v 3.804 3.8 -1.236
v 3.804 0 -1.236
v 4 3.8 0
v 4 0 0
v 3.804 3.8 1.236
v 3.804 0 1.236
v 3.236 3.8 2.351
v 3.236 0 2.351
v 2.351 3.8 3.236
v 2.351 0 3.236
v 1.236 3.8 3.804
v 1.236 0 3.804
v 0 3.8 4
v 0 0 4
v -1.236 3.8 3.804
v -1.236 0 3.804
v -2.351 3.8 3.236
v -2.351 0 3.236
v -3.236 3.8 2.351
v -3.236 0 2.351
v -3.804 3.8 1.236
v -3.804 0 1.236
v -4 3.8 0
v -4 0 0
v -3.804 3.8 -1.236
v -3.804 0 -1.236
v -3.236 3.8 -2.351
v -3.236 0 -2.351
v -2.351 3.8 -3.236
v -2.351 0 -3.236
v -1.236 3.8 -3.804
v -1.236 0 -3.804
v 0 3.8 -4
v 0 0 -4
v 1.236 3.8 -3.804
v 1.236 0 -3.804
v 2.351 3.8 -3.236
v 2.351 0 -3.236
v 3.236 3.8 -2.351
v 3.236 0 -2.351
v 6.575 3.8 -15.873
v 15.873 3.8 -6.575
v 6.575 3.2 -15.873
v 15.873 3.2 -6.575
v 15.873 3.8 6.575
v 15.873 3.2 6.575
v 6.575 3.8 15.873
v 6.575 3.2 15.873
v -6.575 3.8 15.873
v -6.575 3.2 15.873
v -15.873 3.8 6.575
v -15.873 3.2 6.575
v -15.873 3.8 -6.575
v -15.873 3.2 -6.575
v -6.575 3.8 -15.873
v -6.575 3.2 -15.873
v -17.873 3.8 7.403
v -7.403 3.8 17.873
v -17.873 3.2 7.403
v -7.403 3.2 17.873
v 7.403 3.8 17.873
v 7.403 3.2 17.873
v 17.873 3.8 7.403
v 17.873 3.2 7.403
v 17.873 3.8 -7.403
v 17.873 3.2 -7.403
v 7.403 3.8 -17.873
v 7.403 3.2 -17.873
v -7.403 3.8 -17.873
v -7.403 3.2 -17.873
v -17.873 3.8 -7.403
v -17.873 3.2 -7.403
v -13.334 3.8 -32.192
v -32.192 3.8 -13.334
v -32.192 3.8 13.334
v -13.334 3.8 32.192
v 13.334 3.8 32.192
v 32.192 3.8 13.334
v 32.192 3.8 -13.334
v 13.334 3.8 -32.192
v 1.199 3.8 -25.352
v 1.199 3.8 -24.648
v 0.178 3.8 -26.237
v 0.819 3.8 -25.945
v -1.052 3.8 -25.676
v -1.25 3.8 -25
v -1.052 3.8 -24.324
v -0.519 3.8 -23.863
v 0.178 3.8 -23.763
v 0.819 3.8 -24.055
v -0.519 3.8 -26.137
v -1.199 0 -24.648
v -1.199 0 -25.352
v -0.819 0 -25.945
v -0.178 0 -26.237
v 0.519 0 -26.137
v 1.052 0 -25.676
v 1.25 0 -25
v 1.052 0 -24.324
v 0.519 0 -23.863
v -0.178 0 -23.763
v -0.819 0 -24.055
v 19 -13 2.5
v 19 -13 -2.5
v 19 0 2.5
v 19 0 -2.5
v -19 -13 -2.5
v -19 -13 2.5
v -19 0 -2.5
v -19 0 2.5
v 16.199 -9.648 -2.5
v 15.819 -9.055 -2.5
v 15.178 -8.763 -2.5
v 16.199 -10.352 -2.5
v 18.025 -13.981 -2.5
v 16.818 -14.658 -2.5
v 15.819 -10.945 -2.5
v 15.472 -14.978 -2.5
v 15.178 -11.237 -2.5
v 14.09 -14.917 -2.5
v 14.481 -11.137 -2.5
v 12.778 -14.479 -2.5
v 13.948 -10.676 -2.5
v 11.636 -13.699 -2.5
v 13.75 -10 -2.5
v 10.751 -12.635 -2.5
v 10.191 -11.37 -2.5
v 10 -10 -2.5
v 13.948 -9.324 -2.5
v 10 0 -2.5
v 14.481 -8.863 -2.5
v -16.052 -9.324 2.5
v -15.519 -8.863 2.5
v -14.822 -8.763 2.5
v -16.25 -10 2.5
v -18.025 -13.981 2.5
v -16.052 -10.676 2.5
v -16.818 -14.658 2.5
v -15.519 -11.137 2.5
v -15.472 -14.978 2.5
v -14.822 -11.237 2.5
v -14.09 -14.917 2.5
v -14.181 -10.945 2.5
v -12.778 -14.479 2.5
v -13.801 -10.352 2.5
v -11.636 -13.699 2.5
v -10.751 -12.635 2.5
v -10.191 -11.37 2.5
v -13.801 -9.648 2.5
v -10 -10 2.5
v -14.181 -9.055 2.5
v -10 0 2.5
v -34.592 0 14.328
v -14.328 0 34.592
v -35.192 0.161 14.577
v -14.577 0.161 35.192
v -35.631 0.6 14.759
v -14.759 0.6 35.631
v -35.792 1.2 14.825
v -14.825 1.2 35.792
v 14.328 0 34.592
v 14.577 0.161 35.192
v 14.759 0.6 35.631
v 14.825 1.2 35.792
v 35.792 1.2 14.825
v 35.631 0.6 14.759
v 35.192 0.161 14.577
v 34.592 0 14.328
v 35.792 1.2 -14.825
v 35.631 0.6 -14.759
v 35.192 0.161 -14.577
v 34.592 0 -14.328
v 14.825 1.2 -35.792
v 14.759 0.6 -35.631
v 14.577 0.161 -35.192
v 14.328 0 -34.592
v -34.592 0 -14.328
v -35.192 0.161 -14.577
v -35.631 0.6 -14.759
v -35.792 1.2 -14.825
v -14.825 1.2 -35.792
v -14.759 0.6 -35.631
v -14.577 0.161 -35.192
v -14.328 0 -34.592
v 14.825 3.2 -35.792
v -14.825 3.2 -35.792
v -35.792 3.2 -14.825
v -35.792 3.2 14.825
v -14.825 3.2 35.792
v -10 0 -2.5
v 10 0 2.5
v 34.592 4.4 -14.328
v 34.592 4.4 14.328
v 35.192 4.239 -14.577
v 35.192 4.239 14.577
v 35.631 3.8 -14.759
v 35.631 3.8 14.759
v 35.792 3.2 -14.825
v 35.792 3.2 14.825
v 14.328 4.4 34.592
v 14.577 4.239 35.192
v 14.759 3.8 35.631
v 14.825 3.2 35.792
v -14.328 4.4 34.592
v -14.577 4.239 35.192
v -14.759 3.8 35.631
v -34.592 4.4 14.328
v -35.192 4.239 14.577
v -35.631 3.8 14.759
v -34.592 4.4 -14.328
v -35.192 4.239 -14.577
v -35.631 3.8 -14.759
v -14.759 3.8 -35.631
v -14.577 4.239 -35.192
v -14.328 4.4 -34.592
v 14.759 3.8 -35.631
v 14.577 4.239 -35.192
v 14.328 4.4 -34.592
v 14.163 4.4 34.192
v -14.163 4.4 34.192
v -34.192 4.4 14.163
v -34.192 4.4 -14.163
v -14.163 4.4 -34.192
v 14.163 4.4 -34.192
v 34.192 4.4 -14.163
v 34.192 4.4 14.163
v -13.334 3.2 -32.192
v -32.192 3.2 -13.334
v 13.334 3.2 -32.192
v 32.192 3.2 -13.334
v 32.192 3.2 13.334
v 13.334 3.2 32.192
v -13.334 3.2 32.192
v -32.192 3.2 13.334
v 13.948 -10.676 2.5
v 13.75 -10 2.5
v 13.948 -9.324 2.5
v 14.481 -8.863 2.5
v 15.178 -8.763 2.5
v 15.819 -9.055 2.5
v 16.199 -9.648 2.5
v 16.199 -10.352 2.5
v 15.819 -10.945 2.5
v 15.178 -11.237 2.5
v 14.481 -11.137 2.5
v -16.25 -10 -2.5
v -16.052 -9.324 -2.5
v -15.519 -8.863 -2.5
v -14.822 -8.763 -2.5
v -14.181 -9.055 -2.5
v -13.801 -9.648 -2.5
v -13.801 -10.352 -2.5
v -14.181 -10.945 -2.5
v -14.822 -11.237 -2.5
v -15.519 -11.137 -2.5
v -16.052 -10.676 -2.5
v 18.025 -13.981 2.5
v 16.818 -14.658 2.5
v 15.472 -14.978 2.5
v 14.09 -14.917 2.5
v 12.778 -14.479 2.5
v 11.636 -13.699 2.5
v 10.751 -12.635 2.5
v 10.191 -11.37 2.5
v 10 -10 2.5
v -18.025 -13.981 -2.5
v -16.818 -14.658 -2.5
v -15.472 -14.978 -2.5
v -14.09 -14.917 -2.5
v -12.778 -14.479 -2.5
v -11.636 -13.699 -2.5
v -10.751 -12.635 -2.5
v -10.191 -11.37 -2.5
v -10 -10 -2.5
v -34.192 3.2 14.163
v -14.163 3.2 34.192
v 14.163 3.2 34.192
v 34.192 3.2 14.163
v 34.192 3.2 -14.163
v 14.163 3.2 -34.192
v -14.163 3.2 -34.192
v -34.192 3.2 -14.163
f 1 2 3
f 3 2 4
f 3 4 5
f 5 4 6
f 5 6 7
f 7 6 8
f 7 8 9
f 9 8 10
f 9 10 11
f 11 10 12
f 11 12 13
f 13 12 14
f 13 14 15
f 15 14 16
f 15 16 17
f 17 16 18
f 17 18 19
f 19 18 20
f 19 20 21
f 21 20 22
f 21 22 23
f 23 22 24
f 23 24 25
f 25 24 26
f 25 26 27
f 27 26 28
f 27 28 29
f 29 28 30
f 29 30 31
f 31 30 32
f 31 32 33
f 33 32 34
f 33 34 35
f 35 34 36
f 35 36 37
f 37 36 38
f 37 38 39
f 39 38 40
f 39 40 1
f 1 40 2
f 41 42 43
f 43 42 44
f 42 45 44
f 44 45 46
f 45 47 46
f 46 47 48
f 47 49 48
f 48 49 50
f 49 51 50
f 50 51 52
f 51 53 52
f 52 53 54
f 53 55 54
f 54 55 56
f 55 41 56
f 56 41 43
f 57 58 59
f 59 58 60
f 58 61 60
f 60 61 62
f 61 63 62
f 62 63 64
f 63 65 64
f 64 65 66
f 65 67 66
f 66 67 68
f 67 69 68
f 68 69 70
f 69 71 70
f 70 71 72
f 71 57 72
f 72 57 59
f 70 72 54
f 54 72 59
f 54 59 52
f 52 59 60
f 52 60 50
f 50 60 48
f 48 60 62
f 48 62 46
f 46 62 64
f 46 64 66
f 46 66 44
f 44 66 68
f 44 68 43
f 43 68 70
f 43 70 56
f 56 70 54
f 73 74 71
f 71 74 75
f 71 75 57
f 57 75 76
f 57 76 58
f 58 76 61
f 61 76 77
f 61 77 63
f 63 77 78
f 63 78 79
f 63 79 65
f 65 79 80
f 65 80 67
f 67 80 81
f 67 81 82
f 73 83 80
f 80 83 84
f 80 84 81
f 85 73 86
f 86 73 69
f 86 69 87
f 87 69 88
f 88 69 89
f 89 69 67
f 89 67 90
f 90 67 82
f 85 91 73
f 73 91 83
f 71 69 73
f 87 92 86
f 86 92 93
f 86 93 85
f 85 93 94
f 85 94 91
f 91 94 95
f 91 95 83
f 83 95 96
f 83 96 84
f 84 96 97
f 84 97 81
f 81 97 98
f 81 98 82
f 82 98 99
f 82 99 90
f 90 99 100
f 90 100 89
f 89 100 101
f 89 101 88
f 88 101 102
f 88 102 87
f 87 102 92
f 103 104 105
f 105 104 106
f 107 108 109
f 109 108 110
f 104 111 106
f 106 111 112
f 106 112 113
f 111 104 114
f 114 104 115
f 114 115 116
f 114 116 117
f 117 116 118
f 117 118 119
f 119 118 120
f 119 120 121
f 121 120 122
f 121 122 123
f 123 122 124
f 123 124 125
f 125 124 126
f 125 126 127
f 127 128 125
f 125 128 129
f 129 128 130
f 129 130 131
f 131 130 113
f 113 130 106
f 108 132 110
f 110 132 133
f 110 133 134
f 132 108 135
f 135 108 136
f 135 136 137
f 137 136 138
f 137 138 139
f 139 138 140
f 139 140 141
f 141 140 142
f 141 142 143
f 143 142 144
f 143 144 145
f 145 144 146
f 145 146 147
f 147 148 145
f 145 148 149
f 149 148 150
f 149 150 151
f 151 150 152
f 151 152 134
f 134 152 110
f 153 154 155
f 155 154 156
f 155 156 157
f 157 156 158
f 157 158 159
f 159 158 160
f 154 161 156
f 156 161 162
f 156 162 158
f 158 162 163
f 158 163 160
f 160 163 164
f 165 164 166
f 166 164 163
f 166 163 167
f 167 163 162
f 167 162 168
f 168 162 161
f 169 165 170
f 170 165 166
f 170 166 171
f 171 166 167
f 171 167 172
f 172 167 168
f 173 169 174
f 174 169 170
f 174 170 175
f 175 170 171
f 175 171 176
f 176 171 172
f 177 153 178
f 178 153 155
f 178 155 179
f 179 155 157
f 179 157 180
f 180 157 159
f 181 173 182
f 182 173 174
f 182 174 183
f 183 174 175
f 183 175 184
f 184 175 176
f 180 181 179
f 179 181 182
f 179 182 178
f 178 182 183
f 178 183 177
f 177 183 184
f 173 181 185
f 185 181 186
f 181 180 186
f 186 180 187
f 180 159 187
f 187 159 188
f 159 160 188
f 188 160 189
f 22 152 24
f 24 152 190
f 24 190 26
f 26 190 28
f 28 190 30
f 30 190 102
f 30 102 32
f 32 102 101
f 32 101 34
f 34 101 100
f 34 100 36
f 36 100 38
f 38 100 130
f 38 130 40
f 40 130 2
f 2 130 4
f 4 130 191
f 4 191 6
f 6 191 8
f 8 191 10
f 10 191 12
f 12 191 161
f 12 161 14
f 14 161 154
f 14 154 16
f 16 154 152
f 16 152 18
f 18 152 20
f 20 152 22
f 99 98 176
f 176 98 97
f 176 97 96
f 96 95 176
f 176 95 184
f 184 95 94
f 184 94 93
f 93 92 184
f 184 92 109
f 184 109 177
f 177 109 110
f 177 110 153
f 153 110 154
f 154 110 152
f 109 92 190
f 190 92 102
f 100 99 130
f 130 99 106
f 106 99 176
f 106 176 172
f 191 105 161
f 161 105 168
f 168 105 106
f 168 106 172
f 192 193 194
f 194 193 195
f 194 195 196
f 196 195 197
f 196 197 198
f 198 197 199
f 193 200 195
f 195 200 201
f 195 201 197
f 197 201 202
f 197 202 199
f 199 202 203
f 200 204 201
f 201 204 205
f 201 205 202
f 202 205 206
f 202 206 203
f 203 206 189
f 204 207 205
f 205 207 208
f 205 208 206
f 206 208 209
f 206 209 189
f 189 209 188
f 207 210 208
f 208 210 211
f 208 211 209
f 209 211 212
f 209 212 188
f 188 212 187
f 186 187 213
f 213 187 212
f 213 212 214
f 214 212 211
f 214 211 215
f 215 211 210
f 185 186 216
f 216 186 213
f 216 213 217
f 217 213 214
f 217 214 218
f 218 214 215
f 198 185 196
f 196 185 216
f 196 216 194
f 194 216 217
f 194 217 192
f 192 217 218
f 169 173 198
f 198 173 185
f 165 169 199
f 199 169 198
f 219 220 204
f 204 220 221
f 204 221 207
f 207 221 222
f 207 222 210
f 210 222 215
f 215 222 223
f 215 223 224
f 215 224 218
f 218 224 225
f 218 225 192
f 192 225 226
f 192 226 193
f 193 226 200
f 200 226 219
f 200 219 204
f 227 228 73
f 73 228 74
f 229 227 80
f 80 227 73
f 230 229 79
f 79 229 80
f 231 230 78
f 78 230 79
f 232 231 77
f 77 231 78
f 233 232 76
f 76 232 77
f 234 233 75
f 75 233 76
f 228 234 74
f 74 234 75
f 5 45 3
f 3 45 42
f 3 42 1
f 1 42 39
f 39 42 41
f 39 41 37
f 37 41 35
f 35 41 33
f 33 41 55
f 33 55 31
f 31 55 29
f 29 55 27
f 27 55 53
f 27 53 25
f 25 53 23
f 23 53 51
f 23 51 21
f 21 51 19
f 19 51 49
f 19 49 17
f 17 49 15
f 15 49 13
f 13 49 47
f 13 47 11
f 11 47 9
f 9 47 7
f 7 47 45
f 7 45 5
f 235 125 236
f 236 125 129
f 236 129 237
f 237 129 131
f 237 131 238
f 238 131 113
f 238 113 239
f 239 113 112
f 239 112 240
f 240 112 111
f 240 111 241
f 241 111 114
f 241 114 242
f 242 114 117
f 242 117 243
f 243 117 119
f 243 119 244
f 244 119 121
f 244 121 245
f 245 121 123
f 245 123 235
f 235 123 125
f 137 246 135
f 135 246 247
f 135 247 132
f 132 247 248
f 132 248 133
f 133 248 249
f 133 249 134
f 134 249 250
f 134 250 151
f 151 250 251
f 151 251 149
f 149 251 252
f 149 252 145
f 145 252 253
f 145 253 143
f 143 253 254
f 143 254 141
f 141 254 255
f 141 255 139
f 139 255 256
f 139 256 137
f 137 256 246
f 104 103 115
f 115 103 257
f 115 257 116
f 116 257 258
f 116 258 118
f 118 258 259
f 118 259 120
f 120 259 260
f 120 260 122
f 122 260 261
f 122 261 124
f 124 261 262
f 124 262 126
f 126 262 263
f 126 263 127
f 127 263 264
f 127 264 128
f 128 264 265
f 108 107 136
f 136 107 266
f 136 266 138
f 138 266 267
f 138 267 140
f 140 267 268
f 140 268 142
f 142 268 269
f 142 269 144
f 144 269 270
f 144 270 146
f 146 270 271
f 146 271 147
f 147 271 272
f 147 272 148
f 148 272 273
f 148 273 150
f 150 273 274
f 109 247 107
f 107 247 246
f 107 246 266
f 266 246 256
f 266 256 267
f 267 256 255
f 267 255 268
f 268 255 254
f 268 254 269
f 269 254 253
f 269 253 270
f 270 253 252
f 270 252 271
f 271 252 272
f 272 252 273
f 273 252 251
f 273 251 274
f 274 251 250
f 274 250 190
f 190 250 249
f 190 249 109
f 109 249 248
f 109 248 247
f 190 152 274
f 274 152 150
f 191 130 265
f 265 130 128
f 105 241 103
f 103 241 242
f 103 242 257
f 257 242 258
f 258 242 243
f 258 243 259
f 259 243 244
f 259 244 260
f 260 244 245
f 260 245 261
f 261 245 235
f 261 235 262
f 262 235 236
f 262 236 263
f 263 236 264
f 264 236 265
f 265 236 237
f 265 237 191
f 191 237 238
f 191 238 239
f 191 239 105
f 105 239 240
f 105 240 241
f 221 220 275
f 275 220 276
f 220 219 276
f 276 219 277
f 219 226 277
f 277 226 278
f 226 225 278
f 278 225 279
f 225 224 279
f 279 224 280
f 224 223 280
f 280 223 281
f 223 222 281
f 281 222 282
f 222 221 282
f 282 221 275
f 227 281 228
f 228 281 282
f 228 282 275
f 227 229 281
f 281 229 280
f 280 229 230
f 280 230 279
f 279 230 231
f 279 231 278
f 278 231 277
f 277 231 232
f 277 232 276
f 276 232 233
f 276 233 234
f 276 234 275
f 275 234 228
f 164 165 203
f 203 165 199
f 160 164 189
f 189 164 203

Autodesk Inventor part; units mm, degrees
ref_plane "YZ Plane" through (0, 0, 0) normal (1, 0, 0) x (0, 1, 0)
ref_plane "XZ Plane" through (0, 0, 0) normal (0, 1, 0) x (-1, 0, 0)
ref_plane "XY Plane" through (0, 0, 0) normal (0, 0, 1) x (1, 0, 0)
sketch "스케치3" plane through (0, 0, 0) normal (0, 1, 0) x (-1, 0, 0)
  line L0 (35.7919, -14.8255) -> (14.8255, -35.7919)
  line L1 (14.8255, -35.7919) -> (-14.8255, -35.7919)
  line L2 (-14.8255, -35.7919) -> (-35.7919, -14.8255)
  line L3 (-35.7919, -14.8255) -> (-35.7919, 14.8255)
  line L4 (-35.7919, 14.8255) -> (-14.8255, 35.7919)
  line L5 (-14.8255, 35.7919) -> (14.8255, 35.7919)
  line L6 (14.8255, 35.7919) -> (35.7919, 14.8255)
  line L7 (35.7919, 14.8255) -> (35.7919, -14.8255)
  line L8 (32.5919, -13.5) -> (13.5, -32.5919)
  line L9 (13.5, -32.5919) -> (-13.5, -32.5919)
  line L10 (-13.5, -32.5919) -> (-32.5919, -13.5)
  line L11 (-32.5919, -13.5) -> (-32.5919, 13.5)
  line L12 (-32.5919, 13.5) -> (-13.5, 32.5919)
  line L13 (-13.5, 32.5919) -> (13.5, 32.5919)
  line L14 (13.5, 32.5919) -> (32.5919, 13.5)
  line L15 (32.5919, 13.5) -> (32.5919, -13.5)
  point P0 (0, 0)
  point P1 (0, 0)
  point P2 (0, 0)
  point P3 (0, 0)
  dimension "d43" = 27
  dimension "d44" = 3.2
extrude "돌출2" add sketch "스케치3" along normal blind 4.4 contours L0 L1 L2 L3 L4 L5 L6 L7 | L8 L9 L10 L11 L12 L13 L14 L15
sketch "스케치4" plane through (0, 4.4, 0) normal (0, 1, 0) x (1, 0, 0)
  line L0 (13.5, -32.5919) -> (-13.5, -32.5919)
  line L1 (-13.5, -32.5919) -> (-32.5919, -13.5)
  line L2 (-32.5919, -13.5) -> (-32.5919, 13.5)
  line L3 (-32.5919, 13.5) -> (-13.5, 32.5919)
  line L4 (-13.5, 32.5919) -> (13.5, 32.5919)
  line L5 (13.5, 32.5919) -> (32.5919, 13.5)
  line L6 (32.5919, 13.5) -> (32.5919, -13.5)
  line L7 (32.5919, -13.5) -> (13.5, -32.5919)
  line L8 (-14.1627, 34.1919) -> (14.1627, 34.1919)
  line L9 (14.1627, 34.1919) -> (34.1919, 14.1627)
  line L10 (34.1919, 14.1627) -> (34.1919, -14.1627)
  line L11 (34.1919, -14.1627) -> (14.1627, -34.1919)
  line L12 (14.1627, -34.1919) -> (-14.1627, -34.1919)
  line L13 (-14.1627, -34.1919) -> (-34.1919, -14.1627)
  line L14 (-34.1919, -14.1627) -> (-34.1919, 14.1627)
  line L15 (-34.1919, 14.1627) -> (-14.1627, 34.1919)
  line L16 (-13.3343, 32.1919) -> (13.3343, 32.1919)
  line L17 (13.3343, 32.1919) -> (32.1919, 13.3343)
  line L18 (32.1919, 13.3343) -> (32.1919, -13.3343)
  line L19 (32.1919, -13.3343) -> (13.3343, -32.1919)
  line L20 (13.3343, -32.1919) -> (-13.3343, -32.1919)
  line L21 (-13.3343, -32.1919) -> (-32.1919, -13.3343)
  line L22 (-32.1919, -13.3343) -> (-32.1919, 13.3343)
  line L23 (-32.1919, 13.3343) -> (-13.3343, 32.1919)
  line L24 (-35.7919, 14.8255) -> (-35.7919, -14.8255) projected
  point P0 (0, 0)
  point P1 (0, 0)
  point P2 (0, 0)
  point P3 (0, 0)
  dimension "d7" = 27
  dimension "d67" = 1.6
  dimension "d68" = 2
extrude "돌출3" cut sketch "스케치4" against normal blind 1.2 contours L0 L1 L2 L3 L4 L5 L6 L7 | L8 L9 L10 L11 L12 L13 L14 L15 | L16 L17 L18 L19 L20 L21 L22 L23
sketch "스케치5" plane through (0, 0, 0) normal (0, -1, 0) x (1, 0, 0)
  line L0 (10, 2.5) -> (20, 2.5)
  line L1 (20, 2.5) -> (20, -2.5)
  line L2 (20, -2.5) -> (10, -2.5)
  line L3 (10, -2.5) -> (10, 2.5)
  line L4 (10, 2.5) -> (20, -2.5) construction
  line L5 (20, 2.5) -> (10, -2.5) construction
  line L6 (-20, 2.5) -> (-10, 2.5)
  line L7 (-10, 2.5) -> (-10, -2.5)
  line L8 (-10, -2.5) -> (-20, -2.5)
  line L9 (-20, -2.5) -> (-20, 2.5)
  line L10 (-20, 2.5) -> (-10, -2.5) construction
  line L11 (-10, 2.5) -> (-20, -2.5) construction
  point P0 (0, 0)
  point P1 (15, 0)
  point P2 (-15, 0)
  dimension "d11" = 10
  dimension "d12" = 5
  dimension "d13" = 10
  dimension "d16" = 30
extrude "돌출4" add sketch "스케치5" along normal blind 10
sketch "스케치6" plane through (-10, 0, -2.5) normal (0, 0, -1) x (-1, 0, 0)
  circle A0 centre (5, -10) radius 5
  circle A1 centre (-25, -10) radius 5
  line L0 (-20, -10) -> (-30, -10) projected
  line L1 (10, -10) -> (0, -10) projected
  point P0 (-10, 0)
  dimension "d23" = 10
  dimension "d24" = 10
extrude "돌출5" add sketch "스케치6" against normal blind 5
sketch "스케치7" plane through (-10, 0, -2.5) normal (0, 0, -1) x (-1, 0, 0)
  circle A0 centre (5, -10) radius 1.25
  line L0 (10, 0) -> (10, -10) projected
  line L1 (0, 0) -> (10, 0) projected
  line L2 (4.7788, 0) -> (0, 0)
  circle A1 centre (-25, -10) radius 1.25
  point P0 (-10, 0)
  dimension "d27" = 2.5
  dimension "d28" = 5
  dimension "d31" = 30
extrude "돌출6" cut sketch "스케치7" against normal blind 5
sketch "스케치8" plane through (0, 0, 0) normal (0, -1, 0) x (1, 0, 0)
  circle A0 centre (0, -25) radius 1.25
  line L0 (-10, 2.5) -> (-10, -2.5) projected
  point P0 (0, 0)
  point P1 (-10, 0)
  dimension "d38" = 2.5
  dimension "d39" = 25
sketch "스케치9" plane through (0, 3.2, 0) normal (0, 1, 0) x (1, 0, 0)
  line L0 (-13.3343, 32.1919) -> (13.3343, 32.1919)
  line L1 (13.3343, 32.1919) -> (32.1919, 13.3343)
  line L2 (32.1919, 13.3343) -> (32.1919, -13.3343)
  line L3 (32.1919, -13.3343) -> (13.3343, -32.1919)
  line L4 (13.3343, -32.1919) -> (-13.3343, -32.1919)
  line L5 (-13.3343, -32.1919) -> (-32.1919, -13.3343)
  line L6 (-32.1919, -13.3343) -> (-32.1919, 13.3343)
  line L7 (-32.1919, 13.3343) -> (-13.3343, 32.1919)
  line L8 (-14.1627, 34.1919) -> (14.1627, 34.1919) projected
  line L9 (-12.0917, 29.1919) -> (12.0917, 29.1919)
  line L10 (12.0917, 29.1919) -> (29.1919, 12.0917)
  line L11 (29.1919, 12.0917) -> (29.1919, -12.0917)
  line L12 (29.1919, -12.0917) -> (12.0917, -29.1919)
  line L13 (12.0917, -29.1919) -> (-12.0917, -29.1919)
  line L14 (-12.0917, -29.1919) -> (-29.1919, -12.0917)
  line L15 (-29.1919, -12.0917) -> (-29.1919, 12.0917)
  line L16 (-29.1919, 12.0917) -> (-12.0917, 29.1919)
  point P0 (0, 0)
  point P1 (0, 0)
  point P2 (0, 0)
  dimension "d46" = 2
  dimension "d47" = 3
extrude "돌출8" add sketch "스케치9" along normal blind 0.6 contours L0 L1 L2 L3 L4 L5 L6 L7 | L9 L10 L11 L12 L13 L14 L15 L16
fillet "모깎기1" radius 1.2 16 edges at (-35.7919, 4.4, 0) (-25.3087, 4.4, 25.3087) (0, 4.4, 35.7919) (25.3087, 4.4, 25.3087) (35.7919, 4.4, 0) (25.3087, 4.4, -25.3087) (0, 4.4, -35.7919) (-25.3087, 4.4, -25.3087) (25.3087, 0, 25.3087) (0, 0, 35.7919) (-25.3087, 0, 25.3087) (-35.7919, 0, 0) (-25.3087, 0, -25.3087) (0, 0, -35.7919) (25.3087, 0, -25.3087) (35.7919, 0, 0)
sketch "스케치10" plane through (0, 0, 0) normal (0, -1, 0) x (1, 0, 0)
  line L0 (-20, 2.5) -> (-10, 2.5) projected
  line L1 (-10, -2.5) -> (-20, -2.5) projected
  line L2 (-20, 2.5) -> (-19, 2.5)
  line L3 (-19, 2.5) -> (-19, -2.5)
  line L4 (-19, -2.5) -> (-20, -2.5)
  line L5 (-20, -2.5) -> (-20, 2.5)
  line L6 (20, -2.5) -> (10, -2.5) projected
  line L7 (10, 2.5) -> (20, 2.5) projected
  line L8 (20, -2.5) -> (19, -2.5)
  line L9 (19, -2.5) -> (19, 2.5)
  line L10 (19, 2.5) -> (20, 2.5)
  line L11 (20, 2.5) -> (20, -2.5)
  point P0 (0, 0)
  dimension "d54" = 1
  dimension "d55" = 1
extrude "돌출9" cut sketch "스케치10" along normal blind 15
extrude "돌출10" cut sketch "스케치8" against normal blind 5
sketch "스케치11" plane through (0, 3.8, 0) normal (0, 1, 0) x (1, 0, 0)
  line L0 (-6.575, 15.8735) -> (6.575, 15.8735)
  line L1 (6.575, 15.8735) -> (15.8735, 6.575)
  line L2 (15.8735, 6.575) -> (15.8735, -6.575)
  line L3 (15.8735, -6.575) -> (6.575, -15.8735)
  line L4 (6.575, -15.8735) -> (-6.575, -15.8735)
  line L5 (-6.575, -15.8735) -> (-15.8735, -6.575)
  line L6 (-15.8735, -6.575) -> (-15.8735, 6.575)
  line L7 (-15.8735, 6.575) -> (-6.575, 15.8735)
  line L8 (-7.4034, 17.8735) -> (7.4034, 17.8735)
  line L9 (7.4034, 17.8735) -> (17.8735, 7.4034)
  line L10 (17.8735, 7.4034) -> (17.8735, -7.4034)
  line L11 (17.8735, -7.4034) -> (7.4034, -17.8735)
  line L12 (7.4034, -17.8735) -> (-7.4034, -17.8735)
  line L13 (-7.4034, -17.8735) -> (-17.8735, -7.4034)
  line L14 (-17.8735, -7.4034) -> (-17.8735, 7.4034)
  line L15 (-17.8735, 7.4034) -> (-7.4034, 17.8735)
  point P0 (0, 0)
  point P1 (0, 0)
  point P2 (0, 0)
  point P3 (0, 17.8735)
  dimension "d60" = 13.15
  dimension "d61" = 2
extrude "돌출11" cut sketch "스케치11" against normal blind 0.6
sketch "스케치12" plane through (0, 3.8, 0) normal (0, 1, 0) x (1, 0, 0)
  circle A0 centre (0, 0) radius 4
  dimension "d64" = 8
extrude "돌출12" cut sketch "스케치12" against normal up to surface (3.8 mm away)
equation "\"d55\" = d54"
properties part number "OV-PAM_top_2"
